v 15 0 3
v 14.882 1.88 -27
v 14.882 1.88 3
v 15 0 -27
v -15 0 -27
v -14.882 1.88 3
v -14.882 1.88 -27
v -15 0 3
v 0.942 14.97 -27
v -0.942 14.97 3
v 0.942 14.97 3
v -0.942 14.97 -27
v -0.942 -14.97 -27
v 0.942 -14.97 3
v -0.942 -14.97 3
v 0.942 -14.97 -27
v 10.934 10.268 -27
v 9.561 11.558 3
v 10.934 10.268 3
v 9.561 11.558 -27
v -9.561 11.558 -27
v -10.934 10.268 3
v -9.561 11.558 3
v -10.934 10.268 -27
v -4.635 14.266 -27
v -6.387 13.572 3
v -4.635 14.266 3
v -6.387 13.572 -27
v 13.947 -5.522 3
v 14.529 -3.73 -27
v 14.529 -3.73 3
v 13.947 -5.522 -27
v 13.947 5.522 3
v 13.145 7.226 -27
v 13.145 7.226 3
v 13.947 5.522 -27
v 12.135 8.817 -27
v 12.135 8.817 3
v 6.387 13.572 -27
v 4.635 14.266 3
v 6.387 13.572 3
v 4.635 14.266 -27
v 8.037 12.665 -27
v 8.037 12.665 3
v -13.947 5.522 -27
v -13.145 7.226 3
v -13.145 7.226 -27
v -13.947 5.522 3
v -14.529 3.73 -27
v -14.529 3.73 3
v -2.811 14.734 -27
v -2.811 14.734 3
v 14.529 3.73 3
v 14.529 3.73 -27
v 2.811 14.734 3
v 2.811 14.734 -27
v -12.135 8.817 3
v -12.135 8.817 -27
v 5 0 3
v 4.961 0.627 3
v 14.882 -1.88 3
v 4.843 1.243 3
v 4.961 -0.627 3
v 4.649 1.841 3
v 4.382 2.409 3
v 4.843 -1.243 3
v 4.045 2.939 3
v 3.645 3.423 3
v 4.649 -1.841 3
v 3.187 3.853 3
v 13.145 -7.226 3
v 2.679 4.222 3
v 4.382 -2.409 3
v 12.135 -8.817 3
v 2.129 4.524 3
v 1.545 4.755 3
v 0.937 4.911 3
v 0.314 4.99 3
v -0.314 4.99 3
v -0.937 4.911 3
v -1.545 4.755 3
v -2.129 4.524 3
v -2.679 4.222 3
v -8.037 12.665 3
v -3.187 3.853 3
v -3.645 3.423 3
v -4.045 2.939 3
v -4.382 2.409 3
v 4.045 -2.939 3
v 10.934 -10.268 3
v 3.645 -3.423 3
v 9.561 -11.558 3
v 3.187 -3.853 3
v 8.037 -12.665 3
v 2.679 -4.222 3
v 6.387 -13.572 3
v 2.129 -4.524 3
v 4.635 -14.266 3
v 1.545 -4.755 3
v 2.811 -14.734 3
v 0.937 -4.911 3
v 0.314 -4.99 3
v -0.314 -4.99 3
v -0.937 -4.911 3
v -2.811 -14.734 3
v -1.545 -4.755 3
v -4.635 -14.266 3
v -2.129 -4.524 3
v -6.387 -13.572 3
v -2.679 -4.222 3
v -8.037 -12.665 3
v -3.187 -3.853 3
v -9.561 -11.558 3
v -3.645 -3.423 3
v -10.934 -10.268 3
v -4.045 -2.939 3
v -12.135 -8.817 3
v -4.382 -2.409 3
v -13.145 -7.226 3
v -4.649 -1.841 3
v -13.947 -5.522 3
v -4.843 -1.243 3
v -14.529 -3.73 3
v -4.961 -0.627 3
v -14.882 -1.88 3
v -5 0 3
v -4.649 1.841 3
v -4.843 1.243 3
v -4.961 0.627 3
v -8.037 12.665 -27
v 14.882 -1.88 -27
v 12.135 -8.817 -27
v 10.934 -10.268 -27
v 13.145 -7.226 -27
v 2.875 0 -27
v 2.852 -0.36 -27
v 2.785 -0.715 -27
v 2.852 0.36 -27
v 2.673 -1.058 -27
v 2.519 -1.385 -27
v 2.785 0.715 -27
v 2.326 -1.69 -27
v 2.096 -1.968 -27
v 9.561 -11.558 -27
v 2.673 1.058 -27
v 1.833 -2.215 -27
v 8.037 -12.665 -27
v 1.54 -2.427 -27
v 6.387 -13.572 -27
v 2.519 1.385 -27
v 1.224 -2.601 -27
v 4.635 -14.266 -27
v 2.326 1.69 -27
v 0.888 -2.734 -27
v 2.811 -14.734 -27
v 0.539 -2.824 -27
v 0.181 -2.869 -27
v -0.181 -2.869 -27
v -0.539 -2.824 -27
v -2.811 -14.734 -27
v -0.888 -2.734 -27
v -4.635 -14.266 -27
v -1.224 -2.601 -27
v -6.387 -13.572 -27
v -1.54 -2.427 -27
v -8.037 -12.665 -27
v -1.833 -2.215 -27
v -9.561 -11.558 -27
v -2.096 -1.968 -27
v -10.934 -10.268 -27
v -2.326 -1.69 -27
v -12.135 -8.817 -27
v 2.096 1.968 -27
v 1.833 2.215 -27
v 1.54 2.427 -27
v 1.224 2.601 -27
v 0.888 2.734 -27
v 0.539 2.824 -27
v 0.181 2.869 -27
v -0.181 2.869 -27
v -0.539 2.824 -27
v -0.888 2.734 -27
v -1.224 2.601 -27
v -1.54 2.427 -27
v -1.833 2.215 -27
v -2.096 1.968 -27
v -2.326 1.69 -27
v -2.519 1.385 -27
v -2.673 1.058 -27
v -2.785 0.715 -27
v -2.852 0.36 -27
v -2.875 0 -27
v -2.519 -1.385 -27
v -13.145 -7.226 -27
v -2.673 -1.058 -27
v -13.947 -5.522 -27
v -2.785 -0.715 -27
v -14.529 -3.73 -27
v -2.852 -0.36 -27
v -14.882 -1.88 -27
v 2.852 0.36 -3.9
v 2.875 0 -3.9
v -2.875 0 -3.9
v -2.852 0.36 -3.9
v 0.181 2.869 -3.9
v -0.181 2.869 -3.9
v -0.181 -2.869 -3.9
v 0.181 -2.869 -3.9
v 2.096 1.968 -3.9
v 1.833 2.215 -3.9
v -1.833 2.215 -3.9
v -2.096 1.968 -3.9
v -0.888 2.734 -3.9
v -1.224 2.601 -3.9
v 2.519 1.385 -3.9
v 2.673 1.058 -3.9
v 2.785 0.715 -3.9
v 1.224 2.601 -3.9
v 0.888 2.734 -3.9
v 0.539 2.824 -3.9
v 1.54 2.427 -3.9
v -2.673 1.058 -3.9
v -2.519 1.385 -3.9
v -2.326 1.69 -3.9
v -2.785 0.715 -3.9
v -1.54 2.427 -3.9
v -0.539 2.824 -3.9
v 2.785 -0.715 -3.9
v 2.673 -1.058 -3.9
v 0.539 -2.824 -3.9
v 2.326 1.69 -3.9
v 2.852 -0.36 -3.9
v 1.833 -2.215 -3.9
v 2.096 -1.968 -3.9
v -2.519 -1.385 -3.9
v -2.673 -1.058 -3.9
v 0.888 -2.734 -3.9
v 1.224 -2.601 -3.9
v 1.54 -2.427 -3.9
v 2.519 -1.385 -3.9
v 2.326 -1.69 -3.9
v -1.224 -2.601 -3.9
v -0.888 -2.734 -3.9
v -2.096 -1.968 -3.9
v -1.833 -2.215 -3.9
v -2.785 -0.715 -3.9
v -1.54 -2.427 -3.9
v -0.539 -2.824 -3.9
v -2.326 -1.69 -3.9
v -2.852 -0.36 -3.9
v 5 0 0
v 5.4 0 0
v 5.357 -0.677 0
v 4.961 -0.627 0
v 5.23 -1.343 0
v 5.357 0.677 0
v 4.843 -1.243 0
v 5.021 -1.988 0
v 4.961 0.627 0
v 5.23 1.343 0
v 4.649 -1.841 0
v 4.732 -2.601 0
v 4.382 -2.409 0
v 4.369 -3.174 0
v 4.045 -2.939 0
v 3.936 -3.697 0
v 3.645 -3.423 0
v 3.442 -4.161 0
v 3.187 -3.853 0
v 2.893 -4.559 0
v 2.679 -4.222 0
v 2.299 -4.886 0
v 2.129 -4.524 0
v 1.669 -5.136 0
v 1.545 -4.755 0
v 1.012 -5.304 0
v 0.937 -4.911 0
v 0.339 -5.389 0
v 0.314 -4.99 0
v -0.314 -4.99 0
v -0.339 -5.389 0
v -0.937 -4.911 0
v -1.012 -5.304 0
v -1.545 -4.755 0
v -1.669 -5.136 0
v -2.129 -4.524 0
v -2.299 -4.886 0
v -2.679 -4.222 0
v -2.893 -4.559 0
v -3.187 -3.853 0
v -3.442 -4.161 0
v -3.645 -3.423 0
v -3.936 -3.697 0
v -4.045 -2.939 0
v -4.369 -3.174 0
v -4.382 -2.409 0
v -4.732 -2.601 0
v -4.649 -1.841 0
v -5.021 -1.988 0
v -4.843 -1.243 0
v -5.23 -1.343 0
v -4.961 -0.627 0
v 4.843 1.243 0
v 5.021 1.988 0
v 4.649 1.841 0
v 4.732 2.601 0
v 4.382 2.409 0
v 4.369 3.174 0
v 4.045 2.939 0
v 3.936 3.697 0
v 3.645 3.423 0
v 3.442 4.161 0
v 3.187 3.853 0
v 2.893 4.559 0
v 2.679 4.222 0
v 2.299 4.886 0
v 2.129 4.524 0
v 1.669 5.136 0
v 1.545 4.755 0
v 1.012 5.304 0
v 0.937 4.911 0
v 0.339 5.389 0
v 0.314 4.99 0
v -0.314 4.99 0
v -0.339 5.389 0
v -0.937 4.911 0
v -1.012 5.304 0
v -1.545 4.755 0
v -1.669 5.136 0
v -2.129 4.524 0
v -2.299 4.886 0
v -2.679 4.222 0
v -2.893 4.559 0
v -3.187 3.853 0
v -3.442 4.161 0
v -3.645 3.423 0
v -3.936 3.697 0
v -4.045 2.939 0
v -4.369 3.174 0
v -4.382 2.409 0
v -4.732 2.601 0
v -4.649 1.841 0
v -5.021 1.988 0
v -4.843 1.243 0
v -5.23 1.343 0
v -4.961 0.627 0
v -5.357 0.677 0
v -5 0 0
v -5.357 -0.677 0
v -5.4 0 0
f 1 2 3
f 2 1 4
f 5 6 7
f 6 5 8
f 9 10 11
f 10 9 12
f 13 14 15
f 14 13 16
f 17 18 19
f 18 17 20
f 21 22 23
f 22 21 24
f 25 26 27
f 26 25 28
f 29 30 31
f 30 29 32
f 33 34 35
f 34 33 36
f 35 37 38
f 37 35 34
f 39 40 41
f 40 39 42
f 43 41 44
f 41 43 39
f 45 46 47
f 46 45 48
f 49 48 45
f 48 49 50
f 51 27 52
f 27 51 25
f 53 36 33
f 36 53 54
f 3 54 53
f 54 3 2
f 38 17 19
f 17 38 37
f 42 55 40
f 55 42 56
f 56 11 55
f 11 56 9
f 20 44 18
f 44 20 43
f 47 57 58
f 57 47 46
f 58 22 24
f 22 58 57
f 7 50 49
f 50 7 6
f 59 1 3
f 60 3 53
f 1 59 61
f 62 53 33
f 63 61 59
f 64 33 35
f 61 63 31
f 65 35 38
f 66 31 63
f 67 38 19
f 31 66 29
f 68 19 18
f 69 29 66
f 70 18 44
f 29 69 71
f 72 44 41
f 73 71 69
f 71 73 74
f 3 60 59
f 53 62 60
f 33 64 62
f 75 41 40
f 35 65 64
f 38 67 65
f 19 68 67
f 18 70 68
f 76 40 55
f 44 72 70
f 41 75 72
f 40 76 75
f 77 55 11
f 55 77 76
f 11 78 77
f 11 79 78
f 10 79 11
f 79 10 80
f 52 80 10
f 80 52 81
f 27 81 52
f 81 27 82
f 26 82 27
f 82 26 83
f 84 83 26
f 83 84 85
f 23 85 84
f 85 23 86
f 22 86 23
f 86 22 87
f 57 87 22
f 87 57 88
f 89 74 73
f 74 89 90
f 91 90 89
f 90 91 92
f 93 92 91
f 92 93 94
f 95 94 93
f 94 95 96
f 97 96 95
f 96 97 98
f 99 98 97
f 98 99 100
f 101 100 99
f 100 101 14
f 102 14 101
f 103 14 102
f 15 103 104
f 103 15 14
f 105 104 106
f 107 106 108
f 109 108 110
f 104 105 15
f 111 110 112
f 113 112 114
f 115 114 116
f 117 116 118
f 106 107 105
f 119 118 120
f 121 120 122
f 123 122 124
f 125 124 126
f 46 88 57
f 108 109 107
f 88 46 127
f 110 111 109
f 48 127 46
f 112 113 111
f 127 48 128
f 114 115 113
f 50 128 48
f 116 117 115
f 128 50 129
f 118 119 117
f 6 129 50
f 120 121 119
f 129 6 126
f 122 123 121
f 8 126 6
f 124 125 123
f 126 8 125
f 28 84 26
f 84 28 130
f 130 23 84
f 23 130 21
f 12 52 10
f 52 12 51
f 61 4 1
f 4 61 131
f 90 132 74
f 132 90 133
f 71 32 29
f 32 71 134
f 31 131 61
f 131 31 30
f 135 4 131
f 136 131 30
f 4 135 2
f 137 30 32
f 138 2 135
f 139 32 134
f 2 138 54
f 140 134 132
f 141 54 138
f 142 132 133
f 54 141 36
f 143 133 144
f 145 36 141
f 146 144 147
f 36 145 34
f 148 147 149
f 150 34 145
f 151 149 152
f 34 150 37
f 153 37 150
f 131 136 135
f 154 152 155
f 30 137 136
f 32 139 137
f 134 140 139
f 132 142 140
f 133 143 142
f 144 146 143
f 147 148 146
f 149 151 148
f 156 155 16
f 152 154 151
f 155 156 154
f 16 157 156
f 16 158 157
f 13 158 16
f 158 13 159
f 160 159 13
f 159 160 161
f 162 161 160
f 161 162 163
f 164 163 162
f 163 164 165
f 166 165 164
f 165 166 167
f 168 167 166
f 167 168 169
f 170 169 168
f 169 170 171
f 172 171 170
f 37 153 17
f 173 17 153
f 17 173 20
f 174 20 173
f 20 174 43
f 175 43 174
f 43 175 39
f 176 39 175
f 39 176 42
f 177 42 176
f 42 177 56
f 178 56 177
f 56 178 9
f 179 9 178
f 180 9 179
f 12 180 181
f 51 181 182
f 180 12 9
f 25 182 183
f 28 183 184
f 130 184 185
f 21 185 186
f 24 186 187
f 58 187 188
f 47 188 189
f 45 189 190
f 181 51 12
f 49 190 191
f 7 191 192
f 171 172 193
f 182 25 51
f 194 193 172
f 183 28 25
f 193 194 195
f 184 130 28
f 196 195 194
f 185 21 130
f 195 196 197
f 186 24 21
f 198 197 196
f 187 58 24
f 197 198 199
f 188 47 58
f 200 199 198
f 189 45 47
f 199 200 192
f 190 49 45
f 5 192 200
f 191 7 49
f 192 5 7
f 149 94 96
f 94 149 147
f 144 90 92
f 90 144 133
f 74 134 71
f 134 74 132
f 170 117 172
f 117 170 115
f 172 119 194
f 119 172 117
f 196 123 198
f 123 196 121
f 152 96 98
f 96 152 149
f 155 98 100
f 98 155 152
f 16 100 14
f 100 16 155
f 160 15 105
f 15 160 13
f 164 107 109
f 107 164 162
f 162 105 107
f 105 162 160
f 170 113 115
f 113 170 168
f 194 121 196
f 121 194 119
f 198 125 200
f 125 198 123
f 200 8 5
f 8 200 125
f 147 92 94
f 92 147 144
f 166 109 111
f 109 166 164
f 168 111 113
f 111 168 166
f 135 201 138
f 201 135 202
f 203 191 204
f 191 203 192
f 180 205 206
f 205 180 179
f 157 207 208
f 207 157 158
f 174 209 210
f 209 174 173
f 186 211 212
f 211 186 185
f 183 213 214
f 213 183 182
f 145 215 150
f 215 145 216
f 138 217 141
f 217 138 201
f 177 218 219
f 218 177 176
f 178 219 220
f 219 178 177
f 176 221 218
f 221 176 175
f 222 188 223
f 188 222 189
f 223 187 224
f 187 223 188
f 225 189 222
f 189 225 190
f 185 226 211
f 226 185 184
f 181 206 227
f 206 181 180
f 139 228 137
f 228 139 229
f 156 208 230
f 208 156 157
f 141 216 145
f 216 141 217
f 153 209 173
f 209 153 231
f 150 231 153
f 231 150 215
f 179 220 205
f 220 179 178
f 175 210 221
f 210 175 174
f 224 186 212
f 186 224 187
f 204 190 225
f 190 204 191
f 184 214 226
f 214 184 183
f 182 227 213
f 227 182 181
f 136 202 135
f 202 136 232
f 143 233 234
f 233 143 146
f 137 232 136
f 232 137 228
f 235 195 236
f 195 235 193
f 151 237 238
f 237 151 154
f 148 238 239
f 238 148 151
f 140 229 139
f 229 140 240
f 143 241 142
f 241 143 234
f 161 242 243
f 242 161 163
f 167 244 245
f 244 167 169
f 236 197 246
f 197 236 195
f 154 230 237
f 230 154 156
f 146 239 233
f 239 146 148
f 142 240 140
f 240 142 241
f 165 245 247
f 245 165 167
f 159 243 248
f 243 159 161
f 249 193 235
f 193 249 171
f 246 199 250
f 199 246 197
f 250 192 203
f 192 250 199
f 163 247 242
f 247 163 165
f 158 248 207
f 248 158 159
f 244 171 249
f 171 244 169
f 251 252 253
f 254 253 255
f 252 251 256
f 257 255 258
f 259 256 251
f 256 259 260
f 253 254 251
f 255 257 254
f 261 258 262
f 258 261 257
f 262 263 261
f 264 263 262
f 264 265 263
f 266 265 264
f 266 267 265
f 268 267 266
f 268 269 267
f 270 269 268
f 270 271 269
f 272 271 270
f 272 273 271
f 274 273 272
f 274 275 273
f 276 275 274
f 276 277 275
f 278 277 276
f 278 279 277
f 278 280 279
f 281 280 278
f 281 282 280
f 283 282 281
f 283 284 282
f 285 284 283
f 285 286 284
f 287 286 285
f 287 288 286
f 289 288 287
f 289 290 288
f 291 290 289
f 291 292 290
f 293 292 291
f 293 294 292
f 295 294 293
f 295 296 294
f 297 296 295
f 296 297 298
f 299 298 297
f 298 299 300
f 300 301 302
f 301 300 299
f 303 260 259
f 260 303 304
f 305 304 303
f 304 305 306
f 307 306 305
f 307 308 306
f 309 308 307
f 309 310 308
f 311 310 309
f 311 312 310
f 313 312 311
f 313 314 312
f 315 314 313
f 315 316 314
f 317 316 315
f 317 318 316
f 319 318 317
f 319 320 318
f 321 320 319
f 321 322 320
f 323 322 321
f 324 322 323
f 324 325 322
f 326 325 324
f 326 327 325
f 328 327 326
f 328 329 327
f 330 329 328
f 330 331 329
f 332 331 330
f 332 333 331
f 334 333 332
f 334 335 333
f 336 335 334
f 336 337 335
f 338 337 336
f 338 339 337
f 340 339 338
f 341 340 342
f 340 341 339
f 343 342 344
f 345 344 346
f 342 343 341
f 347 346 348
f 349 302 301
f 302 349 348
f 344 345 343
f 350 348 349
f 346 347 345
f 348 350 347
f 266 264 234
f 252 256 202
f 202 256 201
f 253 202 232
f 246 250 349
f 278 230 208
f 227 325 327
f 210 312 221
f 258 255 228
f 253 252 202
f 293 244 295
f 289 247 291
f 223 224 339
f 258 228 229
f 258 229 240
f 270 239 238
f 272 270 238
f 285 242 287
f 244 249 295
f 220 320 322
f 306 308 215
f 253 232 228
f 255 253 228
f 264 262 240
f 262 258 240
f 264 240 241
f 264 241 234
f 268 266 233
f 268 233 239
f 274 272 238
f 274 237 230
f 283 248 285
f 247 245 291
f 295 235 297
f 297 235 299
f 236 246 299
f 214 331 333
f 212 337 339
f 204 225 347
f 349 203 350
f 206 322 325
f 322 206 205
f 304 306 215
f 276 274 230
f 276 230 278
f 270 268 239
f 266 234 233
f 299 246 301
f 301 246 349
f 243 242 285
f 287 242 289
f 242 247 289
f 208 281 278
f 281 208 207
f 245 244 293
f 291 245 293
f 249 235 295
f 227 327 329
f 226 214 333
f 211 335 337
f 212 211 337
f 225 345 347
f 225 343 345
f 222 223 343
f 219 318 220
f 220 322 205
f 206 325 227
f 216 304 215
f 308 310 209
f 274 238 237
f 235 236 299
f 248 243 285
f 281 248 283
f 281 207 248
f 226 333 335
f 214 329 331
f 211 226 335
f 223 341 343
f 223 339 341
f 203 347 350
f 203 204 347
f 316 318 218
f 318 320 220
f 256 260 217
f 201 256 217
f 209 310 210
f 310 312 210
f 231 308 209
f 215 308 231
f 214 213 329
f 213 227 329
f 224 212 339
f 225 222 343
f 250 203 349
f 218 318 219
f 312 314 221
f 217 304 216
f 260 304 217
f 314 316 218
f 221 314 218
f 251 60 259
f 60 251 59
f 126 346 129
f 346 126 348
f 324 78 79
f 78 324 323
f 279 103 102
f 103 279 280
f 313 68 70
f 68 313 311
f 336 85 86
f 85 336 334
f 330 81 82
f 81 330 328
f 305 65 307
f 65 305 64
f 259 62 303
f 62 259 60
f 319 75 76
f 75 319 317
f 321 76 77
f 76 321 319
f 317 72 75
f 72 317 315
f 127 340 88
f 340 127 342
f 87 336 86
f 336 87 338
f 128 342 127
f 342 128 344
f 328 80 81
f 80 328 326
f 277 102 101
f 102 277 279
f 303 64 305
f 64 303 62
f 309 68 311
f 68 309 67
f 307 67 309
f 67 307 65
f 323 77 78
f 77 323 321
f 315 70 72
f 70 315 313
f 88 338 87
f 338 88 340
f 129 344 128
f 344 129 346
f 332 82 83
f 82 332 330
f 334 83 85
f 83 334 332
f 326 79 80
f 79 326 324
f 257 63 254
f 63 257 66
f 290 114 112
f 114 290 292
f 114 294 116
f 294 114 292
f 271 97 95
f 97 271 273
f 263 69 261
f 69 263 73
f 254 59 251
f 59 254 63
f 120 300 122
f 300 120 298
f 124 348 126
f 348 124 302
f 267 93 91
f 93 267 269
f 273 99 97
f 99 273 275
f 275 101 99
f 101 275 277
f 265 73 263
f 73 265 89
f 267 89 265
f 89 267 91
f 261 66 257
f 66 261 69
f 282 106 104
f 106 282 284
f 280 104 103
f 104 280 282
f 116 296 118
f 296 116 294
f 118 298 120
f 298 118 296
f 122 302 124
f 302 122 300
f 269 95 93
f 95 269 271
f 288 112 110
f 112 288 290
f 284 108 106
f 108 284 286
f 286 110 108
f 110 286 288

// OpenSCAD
$fn = 50;

difference() {
	union() {
		translate(v = [0, 0, -27.0]) {
			cylinder(h = 30, r = 15.0);
		}
		#translate(v = [0, 0, -30.0]) {
			cylinder(h = 30, r = 2.875);
		}
	}
	union() {
		translate(v = [0, 0, 0]) {
			rotate(a = [0, 0, 0]) {
				difference() {
					union() {
						translate(v = [0, 0, -30.0]) {
							cylinder(h = 30, r = 2.6);
						}
						translate(v = [0, 0, -3.9]) {
							cylinder(h = 3.9, r1 = 2.875, r2 = 5.4);
						}
						translate(v = [0, 0, -30.0]) {
							cylinder(h = 30, r = 2.875);
						}
						translate(v = [0, 0, -30.0]) {
							cylinder(h = 30, r = 2.6);
						}
					}
					union();
				}
			}
		}
		#cylinder(h = 3, r = 5.0);
	}
}
